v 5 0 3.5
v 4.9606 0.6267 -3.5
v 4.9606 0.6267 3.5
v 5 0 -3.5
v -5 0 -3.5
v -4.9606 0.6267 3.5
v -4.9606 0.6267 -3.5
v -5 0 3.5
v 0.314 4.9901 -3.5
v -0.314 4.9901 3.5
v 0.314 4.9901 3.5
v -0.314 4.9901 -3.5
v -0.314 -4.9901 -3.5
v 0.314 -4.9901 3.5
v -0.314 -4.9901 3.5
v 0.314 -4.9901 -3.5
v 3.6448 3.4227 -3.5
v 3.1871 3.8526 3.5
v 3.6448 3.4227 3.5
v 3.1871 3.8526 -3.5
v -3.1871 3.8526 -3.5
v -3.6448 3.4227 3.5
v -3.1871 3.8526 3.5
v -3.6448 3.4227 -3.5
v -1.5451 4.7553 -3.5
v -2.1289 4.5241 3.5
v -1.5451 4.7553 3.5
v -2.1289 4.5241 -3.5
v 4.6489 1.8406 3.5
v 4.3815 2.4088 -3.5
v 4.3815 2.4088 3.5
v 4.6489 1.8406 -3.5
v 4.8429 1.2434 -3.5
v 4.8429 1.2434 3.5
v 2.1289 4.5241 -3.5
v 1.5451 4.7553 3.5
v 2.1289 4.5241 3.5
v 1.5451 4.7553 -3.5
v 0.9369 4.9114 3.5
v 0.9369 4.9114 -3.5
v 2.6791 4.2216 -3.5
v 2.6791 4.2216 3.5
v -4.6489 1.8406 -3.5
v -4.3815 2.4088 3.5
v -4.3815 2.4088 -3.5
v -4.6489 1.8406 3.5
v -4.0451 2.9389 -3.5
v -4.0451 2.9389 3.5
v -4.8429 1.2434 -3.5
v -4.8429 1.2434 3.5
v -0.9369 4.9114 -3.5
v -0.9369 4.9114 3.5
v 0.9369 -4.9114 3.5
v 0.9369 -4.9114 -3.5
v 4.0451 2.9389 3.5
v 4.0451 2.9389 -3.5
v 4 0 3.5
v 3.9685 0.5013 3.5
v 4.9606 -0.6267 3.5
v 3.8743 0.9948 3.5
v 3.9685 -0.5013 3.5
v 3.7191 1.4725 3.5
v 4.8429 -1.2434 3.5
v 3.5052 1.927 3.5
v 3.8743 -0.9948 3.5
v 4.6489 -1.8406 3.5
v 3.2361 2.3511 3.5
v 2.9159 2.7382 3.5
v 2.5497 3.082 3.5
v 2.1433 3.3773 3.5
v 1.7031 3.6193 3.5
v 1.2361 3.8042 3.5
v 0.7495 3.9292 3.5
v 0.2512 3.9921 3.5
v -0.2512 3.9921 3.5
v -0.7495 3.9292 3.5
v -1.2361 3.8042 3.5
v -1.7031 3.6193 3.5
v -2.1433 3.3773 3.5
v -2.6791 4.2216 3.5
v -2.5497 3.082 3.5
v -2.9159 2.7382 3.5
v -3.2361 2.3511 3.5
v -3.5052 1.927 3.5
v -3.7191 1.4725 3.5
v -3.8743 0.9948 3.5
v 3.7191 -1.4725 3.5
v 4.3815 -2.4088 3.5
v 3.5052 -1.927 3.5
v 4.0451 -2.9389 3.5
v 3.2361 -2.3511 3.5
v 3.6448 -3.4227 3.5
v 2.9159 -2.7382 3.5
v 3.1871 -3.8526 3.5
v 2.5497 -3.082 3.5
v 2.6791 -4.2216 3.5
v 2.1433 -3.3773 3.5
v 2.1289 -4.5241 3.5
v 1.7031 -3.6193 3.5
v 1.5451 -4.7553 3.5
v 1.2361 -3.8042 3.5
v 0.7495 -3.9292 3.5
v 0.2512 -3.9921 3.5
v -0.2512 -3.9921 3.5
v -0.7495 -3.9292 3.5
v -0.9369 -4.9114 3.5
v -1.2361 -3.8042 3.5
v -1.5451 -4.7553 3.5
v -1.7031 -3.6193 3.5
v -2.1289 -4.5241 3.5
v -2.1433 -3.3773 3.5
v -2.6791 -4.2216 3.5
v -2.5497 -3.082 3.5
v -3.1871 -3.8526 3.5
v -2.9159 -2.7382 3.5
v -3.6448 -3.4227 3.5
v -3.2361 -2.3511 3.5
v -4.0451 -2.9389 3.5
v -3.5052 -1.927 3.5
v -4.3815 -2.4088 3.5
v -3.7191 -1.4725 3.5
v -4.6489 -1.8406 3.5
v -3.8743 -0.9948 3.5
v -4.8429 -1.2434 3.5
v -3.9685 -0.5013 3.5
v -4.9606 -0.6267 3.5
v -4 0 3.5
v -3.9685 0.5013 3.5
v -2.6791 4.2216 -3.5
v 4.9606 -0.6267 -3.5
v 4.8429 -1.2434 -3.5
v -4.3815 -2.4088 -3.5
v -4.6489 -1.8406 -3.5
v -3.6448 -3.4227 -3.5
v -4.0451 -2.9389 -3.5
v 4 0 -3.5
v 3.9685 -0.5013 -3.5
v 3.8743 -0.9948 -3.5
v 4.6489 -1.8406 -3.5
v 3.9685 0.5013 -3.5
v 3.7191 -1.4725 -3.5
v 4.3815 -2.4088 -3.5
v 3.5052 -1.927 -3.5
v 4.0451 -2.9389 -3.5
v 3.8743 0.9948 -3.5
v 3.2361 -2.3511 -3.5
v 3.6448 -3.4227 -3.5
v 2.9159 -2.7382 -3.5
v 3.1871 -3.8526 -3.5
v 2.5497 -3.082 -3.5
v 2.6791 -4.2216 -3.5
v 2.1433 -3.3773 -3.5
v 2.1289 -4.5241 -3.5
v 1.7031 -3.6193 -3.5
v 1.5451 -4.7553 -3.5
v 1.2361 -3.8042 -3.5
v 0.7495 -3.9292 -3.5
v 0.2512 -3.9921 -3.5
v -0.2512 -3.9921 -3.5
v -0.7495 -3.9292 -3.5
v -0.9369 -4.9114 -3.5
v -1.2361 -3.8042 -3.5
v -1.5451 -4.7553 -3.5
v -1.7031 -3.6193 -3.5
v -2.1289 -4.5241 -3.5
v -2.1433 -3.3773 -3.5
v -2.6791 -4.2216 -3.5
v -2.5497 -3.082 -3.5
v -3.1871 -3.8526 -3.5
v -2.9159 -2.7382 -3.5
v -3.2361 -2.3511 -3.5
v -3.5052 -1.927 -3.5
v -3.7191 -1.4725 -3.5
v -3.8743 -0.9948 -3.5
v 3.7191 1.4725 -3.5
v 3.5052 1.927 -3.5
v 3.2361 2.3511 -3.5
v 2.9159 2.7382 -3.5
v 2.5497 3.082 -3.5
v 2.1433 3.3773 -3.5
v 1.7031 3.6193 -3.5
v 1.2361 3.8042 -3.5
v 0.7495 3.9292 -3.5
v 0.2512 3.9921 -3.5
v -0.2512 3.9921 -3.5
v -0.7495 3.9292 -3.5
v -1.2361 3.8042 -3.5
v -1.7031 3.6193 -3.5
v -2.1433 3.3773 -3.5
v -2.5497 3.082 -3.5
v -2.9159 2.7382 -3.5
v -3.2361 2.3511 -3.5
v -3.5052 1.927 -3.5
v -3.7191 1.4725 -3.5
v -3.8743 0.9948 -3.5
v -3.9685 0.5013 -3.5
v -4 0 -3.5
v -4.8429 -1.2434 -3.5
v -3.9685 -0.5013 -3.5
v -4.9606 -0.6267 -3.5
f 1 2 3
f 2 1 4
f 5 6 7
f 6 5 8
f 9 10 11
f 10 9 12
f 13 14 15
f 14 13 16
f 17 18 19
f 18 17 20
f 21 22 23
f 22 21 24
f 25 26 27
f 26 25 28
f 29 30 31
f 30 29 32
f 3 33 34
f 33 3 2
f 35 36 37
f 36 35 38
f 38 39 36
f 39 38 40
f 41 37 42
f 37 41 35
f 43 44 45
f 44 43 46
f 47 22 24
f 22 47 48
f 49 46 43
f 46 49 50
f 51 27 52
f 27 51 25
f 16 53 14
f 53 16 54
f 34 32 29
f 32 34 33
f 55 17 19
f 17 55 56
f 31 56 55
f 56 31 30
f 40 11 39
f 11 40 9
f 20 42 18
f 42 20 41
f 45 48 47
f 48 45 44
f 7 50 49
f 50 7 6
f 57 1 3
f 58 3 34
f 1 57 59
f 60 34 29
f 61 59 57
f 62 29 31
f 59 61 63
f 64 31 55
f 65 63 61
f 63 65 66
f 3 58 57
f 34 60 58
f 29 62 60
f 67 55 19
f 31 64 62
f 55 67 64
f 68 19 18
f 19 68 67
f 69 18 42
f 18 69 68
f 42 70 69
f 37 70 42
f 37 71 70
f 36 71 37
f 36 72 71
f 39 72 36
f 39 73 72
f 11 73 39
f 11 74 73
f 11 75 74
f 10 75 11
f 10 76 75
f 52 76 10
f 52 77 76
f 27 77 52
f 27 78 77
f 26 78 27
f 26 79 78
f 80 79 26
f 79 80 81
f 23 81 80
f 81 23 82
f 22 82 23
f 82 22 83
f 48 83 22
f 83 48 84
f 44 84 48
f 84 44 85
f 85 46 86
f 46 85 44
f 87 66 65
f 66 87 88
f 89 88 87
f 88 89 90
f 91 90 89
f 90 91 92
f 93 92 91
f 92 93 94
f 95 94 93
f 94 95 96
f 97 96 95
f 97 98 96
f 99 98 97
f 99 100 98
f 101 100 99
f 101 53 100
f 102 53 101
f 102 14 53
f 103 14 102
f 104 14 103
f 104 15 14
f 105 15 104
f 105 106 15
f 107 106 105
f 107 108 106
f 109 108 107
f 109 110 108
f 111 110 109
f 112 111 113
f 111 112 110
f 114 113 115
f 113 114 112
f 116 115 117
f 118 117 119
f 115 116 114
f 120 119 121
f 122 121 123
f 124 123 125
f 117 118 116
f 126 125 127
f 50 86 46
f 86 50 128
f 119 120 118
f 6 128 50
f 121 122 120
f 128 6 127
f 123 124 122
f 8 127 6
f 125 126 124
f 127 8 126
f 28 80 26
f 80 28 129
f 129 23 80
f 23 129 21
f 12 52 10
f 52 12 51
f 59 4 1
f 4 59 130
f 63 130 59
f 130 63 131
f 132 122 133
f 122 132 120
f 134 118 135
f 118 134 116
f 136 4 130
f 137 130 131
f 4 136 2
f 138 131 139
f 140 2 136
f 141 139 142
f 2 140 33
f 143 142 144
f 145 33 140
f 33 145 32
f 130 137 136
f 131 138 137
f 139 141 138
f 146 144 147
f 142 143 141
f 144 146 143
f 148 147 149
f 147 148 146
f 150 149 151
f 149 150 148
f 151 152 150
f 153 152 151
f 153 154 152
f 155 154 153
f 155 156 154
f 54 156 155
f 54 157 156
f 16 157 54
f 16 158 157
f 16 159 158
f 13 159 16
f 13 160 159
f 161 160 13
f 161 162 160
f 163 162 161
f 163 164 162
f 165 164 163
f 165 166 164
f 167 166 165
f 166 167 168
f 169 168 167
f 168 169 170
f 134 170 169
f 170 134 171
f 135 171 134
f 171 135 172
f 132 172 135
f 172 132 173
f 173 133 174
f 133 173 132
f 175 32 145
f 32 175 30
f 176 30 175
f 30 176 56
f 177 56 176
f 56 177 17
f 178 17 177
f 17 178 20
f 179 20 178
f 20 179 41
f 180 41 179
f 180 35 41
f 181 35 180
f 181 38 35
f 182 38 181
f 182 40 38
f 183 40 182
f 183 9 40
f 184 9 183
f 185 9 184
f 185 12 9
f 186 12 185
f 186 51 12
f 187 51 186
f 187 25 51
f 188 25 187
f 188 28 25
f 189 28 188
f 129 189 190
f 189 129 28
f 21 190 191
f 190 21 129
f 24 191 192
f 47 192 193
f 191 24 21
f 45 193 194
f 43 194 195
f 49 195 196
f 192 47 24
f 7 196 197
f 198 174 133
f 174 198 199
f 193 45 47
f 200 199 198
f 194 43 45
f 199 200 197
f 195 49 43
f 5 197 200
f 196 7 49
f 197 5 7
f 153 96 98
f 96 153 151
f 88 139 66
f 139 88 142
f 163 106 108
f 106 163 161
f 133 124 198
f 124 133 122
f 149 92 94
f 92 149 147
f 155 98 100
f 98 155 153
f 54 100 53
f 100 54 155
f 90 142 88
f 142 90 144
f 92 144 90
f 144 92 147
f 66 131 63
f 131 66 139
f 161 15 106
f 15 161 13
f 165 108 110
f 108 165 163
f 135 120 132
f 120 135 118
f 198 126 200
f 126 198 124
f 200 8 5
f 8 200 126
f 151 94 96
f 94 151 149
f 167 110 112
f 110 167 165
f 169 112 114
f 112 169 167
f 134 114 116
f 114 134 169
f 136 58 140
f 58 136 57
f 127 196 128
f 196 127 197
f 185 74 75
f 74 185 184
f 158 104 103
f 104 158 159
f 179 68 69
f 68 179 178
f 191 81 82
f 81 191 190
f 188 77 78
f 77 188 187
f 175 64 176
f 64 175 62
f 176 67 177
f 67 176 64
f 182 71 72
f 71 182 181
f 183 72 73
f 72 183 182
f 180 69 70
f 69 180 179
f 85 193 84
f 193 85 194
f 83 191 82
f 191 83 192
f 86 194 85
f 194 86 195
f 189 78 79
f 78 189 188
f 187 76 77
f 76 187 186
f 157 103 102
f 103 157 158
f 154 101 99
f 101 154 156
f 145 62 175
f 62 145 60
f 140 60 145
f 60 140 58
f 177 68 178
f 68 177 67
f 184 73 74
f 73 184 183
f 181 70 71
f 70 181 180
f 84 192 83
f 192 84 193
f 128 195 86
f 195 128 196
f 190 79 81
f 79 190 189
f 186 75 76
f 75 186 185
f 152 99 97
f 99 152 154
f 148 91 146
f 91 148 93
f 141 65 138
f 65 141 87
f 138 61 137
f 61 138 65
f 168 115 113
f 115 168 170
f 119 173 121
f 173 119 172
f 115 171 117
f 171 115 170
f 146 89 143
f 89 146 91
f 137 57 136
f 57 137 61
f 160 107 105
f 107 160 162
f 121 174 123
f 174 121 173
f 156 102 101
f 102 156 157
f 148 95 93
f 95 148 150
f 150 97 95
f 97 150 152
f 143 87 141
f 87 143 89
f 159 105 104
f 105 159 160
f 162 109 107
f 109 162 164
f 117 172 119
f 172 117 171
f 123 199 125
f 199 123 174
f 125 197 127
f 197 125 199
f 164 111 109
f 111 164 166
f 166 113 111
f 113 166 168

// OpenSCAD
$fn = 50;


difference() {
	union() {
		translate(v = [0, 0, -3.5000000000]) {
			cylinder(h = 7, r = 5.0000000000);
		}
	}
	union() {
		translate(v = [0, 0, -100.0000000000]) {
			cylinder(h = 200, r = 4);
		}
	}
}
